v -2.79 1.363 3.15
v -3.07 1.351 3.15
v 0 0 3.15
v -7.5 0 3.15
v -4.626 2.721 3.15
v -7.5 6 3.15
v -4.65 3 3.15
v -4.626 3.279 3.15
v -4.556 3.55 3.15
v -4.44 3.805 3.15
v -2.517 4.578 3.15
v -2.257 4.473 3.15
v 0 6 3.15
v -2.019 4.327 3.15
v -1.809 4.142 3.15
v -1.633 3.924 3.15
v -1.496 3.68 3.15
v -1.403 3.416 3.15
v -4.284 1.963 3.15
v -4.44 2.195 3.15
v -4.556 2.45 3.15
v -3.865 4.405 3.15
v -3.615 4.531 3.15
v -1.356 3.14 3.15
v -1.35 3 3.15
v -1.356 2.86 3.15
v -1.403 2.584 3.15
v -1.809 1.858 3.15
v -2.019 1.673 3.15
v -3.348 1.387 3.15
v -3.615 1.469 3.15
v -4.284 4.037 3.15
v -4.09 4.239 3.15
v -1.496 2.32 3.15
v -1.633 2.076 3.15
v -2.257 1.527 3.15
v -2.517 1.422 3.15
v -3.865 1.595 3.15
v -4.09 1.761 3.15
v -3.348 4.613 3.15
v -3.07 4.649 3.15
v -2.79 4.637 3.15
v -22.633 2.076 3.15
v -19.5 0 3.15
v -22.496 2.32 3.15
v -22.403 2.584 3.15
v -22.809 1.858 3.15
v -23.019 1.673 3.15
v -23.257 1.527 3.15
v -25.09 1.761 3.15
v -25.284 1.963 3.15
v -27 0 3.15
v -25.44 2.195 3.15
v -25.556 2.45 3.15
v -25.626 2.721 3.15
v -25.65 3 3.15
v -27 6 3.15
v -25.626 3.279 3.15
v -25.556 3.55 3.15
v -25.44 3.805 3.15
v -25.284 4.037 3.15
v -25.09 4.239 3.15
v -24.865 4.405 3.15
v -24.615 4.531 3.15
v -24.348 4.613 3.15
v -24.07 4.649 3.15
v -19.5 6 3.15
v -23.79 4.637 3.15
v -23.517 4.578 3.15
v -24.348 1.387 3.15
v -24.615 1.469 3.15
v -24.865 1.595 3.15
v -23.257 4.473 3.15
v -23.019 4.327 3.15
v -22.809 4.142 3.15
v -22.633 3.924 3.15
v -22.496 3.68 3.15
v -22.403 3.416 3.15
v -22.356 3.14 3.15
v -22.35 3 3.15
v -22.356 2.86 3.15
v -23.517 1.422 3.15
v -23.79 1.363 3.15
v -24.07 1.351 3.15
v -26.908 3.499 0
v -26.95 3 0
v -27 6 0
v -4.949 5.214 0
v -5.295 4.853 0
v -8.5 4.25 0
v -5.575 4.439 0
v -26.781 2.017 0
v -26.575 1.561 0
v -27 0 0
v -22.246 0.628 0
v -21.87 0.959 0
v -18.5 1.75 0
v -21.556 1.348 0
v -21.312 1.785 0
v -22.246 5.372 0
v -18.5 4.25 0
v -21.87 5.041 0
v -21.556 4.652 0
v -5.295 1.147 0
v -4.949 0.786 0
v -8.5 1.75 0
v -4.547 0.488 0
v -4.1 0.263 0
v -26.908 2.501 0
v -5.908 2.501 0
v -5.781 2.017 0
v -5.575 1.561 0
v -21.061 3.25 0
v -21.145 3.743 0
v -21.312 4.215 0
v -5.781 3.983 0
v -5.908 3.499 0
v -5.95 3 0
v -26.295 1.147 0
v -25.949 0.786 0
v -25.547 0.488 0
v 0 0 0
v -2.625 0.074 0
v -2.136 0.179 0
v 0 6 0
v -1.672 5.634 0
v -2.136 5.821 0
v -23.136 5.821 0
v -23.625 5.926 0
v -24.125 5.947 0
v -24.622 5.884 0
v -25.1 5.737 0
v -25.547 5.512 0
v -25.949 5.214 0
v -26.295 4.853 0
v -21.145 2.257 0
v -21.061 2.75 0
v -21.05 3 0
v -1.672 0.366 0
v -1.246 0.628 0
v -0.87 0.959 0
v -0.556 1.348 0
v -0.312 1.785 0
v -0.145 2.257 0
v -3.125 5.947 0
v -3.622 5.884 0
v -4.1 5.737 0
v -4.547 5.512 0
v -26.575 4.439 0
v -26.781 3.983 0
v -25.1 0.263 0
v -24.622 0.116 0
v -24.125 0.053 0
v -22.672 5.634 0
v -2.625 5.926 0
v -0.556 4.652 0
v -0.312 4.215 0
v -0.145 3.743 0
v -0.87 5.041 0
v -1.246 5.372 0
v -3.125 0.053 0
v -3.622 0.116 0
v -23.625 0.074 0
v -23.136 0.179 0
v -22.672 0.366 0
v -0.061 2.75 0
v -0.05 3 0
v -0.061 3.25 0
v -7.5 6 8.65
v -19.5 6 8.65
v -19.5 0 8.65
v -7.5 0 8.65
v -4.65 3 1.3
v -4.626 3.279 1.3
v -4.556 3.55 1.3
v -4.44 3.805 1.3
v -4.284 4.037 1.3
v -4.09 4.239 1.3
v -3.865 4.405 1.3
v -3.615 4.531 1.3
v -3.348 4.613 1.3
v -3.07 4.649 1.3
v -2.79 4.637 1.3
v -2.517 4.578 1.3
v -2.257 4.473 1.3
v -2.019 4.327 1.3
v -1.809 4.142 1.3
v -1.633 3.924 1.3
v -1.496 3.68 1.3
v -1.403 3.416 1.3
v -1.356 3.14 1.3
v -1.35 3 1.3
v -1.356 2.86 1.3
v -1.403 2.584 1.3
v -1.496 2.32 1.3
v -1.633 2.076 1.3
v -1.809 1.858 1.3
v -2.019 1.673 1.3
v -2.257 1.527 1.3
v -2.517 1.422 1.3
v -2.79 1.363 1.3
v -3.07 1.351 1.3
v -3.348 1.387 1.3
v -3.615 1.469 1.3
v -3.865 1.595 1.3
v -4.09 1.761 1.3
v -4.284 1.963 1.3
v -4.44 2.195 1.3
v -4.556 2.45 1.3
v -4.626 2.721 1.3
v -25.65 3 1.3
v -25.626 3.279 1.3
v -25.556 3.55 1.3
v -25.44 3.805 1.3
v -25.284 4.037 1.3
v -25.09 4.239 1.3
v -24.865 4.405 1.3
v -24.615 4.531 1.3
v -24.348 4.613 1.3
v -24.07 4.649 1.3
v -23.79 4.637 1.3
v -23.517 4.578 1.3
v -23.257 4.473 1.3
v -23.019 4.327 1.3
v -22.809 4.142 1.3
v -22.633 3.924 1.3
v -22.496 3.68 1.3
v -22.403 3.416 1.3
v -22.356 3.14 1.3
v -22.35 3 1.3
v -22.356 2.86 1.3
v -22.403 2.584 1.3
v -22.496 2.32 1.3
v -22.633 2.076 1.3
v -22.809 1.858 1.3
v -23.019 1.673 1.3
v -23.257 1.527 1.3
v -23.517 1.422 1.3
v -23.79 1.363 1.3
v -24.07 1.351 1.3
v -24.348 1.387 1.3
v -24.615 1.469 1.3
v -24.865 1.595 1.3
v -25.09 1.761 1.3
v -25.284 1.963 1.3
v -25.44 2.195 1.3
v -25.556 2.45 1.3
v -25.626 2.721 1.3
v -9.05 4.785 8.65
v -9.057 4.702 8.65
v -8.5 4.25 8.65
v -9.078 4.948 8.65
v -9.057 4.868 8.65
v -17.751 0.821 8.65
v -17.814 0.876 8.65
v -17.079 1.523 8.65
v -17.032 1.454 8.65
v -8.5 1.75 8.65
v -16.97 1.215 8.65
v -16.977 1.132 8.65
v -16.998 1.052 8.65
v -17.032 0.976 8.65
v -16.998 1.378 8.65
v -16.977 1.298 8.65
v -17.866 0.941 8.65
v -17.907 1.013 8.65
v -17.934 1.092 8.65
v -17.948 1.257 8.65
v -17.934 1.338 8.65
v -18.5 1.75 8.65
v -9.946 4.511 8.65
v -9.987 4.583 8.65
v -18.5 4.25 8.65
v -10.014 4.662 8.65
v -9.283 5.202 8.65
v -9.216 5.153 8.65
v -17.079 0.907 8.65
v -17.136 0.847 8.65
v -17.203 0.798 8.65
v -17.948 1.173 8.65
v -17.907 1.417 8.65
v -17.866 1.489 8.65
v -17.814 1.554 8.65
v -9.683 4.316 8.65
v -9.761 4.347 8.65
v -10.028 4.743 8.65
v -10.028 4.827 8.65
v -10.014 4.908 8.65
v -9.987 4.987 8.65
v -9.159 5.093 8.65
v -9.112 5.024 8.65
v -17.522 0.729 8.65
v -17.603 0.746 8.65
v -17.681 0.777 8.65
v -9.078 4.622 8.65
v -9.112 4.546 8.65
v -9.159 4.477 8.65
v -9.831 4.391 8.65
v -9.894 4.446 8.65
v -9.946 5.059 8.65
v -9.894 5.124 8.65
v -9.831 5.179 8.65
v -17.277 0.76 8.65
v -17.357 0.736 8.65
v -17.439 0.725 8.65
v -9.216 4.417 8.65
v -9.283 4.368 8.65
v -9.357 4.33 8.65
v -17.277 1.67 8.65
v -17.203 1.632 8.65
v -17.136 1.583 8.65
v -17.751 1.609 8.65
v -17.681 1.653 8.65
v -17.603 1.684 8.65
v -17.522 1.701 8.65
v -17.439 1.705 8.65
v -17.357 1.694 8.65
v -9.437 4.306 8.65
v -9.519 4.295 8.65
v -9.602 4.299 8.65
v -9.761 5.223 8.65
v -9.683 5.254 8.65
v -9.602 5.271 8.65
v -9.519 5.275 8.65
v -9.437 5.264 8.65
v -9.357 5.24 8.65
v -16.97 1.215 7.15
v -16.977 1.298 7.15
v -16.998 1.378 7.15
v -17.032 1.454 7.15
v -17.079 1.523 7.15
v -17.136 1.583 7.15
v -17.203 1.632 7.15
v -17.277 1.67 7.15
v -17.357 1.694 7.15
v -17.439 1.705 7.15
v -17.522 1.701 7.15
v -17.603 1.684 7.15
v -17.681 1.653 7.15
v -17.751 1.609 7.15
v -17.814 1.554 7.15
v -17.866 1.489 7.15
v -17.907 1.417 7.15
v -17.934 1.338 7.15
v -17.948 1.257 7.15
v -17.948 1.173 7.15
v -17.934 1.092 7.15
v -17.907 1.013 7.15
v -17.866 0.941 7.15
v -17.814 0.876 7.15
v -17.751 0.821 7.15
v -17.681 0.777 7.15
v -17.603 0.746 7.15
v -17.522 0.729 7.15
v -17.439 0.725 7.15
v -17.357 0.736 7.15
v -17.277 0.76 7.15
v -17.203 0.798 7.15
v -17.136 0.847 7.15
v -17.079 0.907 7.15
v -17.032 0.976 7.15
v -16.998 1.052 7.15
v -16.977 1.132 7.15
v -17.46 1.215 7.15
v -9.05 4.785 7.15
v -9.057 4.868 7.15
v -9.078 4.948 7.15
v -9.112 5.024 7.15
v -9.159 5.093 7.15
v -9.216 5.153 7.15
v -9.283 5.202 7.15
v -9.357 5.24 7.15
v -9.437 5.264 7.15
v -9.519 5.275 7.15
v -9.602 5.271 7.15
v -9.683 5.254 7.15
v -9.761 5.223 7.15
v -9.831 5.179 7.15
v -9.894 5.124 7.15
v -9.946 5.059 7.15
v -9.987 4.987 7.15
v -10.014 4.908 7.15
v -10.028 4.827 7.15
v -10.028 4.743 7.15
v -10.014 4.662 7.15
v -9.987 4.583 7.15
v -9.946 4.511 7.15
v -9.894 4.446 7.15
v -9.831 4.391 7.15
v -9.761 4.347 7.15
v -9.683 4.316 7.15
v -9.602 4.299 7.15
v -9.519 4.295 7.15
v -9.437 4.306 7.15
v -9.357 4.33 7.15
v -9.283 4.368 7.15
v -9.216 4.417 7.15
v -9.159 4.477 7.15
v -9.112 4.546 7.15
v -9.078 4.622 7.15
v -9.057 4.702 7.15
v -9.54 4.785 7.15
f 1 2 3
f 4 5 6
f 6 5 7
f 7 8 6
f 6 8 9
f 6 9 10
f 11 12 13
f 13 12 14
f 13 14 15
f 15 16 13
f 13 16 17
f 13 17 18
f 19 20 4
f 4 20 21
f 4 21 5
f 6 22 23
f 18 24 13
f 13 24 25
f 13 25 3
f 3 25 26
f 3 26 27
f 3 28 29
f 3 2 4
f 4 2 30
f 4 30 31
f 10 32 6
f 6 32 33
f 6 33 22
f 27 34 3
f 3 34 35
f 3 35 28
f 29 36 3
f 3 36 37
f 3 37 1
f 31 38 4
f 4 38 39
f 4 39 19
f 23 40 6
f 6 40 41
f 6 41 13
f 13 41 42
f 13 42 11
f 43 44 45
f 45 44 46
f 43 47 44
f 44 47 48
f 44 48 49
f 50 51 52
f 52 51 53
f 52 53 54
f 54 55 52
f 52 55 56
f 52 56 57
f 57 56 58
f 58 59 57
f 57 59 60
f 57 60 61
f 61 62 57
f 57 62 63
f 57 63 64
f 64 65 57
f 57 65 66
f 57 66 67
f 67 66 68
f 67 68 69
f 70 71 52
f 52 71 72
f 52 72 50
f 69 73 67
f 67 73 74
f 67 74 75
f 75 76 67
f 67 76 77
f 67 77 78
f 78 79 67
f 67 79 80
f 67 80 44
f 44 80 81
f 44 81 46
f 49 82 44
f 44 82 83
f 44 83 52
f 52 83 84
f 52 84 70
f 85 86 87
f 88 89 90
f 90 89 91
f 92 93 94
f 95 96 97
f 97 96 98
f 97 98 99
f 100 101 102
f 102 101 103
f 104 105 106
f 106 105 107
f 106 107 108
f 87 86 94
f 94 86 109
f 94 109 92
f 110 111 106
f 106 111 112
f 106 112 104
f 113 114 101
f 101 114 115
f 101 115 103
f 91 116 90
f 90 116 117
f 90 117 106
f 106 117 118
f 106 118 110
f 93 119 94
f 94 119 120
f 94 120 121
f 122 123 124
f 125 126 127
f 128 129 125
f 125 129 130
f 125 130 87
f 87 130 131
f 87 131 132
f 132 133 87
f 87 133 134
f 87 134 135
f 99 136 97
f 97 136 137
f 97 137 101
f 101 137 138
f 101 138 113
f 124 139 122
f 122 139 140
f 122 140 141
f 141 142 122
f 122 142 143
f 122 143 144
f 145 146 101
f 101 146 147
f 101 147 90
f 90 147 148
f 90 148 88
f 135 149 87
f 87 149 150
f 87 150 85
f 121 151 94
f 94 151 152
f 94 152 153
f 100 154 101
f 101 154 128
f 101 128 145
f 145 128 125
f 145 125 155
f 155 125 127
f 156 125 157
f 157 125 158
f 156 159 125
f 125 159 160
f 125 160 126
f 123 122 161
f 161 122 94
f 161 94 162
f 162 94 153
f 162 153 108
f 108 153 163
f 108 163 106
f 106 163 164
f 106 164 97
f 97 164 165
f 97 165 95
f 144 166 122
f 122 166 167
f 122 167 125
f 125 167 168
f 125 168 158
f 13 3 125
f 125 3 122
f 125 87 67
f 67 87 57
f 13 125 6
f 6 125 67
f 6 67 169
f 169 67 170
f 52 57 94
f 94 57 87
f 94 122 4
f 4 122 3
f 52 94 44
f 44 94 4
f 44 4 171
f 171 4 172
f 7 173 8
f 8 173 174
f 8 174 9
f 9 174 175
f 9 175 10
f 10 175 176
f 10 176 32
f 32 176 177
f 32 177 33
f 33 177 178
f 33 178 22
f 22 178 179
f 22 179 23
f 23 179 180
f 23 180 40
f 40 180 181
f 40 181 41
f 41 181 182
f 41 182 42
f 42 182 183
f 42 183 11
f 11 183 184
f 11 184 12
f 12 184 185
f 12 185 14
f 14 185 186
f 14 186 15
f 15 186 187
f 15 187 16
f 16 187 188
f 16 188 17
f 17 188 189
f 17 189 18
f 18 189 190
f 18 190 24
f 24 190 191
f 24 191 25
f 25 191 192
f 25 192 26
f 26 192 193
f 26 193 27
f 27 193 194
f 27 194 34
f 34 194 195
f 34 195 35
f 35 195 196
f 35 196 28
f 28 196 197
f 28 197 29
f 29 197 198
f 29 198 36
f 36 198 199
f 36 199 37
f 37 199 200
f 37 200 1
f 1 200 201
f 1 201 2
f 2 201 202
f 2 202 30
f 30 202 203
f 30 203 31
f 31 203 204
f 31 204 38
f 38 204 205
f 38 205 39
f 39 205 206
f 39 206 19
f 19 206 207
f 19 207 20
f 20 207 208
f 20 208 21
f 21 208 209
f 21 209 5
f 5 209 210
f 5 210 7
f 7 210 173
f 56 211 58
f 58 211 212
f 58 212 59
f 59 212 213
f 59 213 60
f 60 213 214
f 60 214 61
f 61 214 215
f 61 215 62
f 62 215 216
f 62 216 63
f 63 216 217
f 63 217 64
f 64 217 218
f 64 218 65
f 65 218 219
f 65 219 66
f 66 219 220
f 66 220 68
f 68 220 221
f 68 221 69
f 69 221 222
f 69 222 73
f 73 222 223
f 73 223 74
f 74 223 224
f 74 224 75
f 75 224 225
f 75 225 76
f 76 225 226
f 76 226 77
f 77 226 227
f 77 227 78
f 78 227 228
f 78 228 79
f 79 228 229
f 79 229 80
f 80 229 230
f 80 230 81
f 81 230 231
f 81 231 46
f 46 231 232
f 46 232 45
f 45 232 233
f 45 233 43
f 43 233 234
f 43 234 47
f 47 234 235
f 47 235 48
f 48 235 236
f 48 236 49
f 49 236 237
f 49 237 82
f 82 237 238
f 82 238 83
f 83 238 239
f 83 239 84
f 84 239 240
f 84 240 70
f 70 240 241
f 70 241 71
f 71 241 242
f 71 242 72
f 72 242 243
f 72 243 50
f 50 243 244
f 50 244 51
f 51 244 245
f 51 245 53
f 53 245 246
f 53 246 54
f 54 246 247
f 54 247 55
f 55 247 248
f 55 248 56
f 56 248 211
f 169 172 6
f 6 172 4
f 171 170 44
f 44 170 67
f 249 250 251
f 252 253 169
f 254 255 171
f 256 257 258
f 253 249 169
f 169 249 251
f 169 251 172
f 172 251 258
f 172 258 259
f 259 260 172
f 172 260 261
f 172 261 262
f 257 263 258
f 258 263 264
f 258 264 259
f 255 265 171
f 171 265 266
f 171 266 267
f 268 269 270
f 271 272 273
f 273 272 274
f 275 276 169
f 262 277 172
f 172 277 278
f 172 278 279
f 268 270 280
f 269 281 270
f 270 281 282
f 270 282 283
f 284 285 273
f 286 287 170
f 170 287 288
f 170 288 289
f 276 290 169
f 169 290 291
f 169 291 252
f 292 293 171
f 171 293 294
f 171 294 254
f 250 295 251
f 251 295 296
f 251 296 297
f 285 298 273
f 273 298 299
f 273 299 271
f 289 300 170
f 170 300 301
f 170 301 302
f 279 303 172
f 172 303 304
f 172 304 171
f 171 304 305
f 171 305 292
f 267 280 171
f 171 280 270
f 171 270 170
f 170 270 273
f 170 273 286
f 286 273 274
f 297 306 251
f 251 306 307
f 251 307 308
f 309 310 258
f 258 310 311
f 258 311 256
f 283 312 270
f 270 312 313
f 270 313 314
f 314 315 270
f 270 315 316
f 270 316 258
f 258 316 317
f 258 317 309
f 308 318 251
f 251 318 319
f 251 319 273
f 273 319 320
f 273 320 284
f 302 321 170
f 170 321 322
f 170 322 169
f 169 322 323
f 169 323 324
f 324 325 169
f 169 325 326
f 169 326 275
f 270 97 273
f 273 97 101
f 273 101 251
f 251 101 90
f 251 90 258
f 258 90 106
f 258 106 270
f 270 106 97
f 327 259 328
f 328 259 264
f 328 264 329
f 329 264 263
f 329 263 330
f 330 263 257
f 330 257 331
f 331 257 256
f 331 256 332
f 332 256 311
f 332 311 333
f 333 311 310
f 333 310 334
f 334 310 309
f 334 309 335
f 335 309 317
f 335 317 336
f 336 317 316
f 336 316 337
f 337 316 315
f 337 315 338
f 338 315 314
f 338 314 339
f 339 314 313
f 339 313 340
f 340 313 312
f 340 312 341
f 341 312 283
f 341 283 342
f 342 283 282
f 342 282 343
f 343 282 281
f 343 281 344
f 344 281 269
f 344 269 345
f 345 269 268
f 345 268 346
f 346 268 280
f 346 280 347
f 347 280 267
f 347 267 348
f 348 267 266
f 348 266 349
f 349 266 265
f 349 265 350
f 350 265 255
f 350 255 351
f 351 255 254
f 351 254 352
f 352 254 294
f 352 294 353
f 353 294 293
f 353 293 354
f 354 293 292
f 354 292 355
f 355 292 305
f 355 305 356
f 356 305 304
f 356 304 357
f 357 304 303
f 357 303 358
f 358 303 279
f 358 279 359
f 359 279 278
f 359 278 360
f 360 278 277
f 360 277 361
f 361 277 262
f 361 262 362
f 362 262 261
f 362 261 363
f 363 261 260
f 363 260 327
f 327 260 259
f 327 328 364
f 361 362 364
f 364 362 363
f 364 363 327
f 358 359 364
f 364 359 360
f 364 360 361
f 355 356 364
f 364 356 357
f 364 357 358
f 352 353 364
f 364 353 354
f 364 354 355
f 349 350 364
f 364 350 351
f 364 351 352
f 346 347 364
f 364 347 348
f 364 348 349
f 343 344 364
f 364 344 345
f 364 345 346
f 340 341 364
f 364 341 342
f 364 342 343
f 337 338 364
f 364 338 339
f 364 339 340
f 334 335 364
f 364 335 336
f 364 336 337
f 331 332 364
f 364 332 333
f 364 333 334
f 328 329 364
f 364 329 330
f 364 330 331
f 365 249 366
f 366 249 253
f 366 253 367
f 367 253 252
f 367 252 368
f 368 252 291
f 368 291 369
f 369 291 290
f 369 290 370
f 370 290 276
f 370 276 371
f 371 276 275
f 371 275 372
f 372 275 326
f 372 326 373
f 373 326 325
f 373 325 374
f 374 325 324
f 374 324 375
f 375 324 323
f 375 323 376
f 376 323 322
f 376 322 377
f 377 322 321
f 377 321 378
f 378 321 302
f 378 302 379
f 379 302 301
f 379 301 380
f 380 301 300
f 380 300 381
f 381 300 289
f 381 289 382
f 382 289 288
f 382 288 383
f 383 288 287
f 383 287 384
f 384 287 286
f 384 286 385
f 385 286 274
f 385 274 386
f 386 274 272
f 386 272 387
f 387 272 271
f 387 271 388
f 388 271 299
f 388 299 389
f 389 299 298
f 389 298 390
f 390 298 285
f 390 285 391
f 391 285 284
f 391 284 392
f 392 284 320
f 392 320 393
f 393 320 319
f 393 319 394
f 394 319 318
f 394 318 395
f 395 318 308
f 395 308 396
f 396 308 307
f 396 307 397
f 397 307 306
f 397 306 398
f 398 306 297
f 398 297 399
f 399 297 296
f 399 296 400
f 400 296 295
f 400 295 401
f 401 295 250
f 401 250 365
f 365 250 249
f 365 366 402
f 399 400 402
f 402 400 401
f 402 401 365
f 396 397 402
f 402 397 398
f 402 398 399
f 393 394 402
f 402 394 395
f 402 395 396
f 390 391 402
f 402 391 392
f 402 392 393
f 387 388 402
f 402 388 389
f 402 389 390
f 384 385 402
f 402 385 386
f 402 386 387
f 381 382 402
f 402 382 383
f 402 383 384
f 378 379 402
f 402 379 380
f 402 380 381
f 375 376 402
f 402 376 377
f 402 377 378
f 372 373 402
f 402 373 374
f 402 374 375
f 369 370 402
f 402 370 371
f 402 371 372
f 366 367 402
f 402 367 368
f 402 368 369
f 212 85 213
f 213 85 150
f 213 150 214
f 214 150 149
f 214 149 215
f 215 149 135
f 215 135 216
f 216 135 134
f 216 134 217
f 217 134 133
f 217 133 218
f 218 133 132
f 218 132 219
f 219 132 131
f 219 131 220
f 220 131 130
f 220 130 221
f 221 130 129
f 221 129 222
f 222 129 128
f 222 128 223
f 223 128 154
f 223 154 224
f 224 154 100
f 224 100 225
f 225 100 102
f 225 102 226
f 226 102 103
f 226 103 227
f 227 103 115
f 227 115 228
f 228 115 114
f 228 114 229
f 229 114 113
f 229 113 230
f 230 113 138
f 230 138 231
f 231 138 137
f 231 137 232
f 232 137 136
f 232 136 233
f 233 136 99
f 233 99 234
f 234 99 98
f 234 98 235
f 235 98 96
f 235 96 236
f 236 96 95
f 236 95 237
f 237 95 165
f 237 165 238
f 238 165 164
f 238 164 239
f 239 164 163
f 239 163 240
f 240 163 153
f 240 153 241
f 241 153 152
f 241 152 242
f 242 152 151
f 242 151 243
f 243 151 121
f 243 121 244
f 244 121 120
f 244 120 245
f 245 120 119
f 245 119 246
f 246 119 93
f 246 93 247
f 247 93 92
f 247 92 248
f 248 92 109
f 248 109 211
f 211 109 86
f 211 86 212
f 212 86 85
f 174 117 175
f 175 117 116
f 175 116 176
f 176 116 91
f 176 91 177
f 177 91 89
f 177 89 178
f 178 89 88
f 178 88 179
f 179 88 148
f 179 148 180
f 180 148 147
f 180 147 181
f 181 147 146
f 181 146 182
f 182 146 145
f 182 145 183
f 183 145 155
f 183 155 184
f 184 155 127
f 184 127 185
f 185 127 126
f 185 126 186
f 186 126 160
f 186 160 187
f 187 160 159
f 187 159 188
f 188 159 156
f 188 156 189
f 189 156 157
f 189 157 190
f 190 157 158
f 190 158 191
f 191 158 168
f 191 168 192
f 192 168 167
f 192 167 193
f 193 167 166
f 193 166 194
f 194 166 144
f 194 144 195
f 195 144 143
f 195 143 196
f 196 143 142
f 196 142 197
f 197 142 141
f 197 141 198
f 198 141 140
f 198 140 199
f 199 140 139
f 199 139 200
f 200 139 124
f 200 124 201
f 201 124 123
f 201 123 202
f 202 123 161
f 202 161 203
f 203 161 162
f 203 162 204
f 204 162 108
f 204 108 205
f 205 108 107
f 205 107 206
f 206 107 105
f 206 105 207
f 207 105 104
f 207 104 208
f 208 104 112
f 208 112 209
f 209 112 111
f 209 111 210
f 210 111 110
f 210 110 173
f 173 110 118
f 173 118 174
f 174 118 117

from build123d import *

# Parameters (mm, degrees)
ESQUISSE1_W             = 27
ESQUISSE1_H             = 6
ESQUISSE1_R             = 1.65
BOSS_EXTRU_1_DEPTH      = 3.15
ESQUISSE3_W             = 12
ESQUISSE3_H             = 6
BOSS_EXTRU_2_DEPTH      = 5.5
ESQUISSE4_W             = 10
ESQUISSE4_H             = 2.5
ENL_V_MAT_EXTRU_1_DEPTH = 10
ESQUISSE5_R             = 0.49
ENL_V_MAT_EXTRU_2_DEPTH = 1.5
CHANFREIN1_SIZE         = 1.3


with BuildPart() as part:
    # Esquisse1 → Boss.-Extru.1 (new body)
    with BuildSketch(Plane.XY):
        with Locations((-13.5, 3)):
            Rectangle(ESQUISSE1_W, ESQUISSE1_H)
        with Locations((-24, 3)):
            Circle(ESQUISSE1_R, mode=Mode.SUBTRACT)
        with Locations((-3, 3)):
            Circle(ESQUISSE1_R, mode=Mode.SUBTRACT)
    extrude(amount=BOSS_EXTRU_1_DEPTH)

    # Esquisse3 → Boss.-Extru.2 (add)
    with BuildSketch(Plane.XY.offset(3.15)):
        with Locations((-13.5, 3)):
            Rectangle(ESQUISSE3_W, ESQUISSE3_H)
    extrude(amount=BOSS_EXTRU_2_DEPTH)

    # Esquisse4 → Enlèv. mat.-Extru.1 (cut)
    with BuildSketch(Plane.XY.offset(8.65)):
        with Locations((-13.5, 3)):
            Rectangle(ESQUISSE4_W, ESQUISSE4_H)
    extrude(amount=-ENL_V_MAT_EXTRU_1_DEPTH, mode=Mode.SUBTRACT)

    # Esquisse5 → Enlèv. mat.-Extru.2 (cut)
    with BuildSketch(Plane.XY.offset(8.65)):
        with Locations((-9.54, 4.785)):
            Circle(ESQUISSE5_R)
        with Locations((-17.46, 1.215)):
            Circle(ESQUISSE5_R)
    extrude(amount=-ENL_V_MAT_EXTRU_2_DEPTH, mode=Mode.SUBTRACT)

    # Chanfrein1
    chanfrein1_edges = [part.edges().sort_by_distance(p)[0] for p in [
        (-4.65, 3, 0),
        (-25.65, 3, 0),
    ]]
    chamfer(chanfrein1_edges, length=CHANFREIN1_SIZE)


solid = part.part
